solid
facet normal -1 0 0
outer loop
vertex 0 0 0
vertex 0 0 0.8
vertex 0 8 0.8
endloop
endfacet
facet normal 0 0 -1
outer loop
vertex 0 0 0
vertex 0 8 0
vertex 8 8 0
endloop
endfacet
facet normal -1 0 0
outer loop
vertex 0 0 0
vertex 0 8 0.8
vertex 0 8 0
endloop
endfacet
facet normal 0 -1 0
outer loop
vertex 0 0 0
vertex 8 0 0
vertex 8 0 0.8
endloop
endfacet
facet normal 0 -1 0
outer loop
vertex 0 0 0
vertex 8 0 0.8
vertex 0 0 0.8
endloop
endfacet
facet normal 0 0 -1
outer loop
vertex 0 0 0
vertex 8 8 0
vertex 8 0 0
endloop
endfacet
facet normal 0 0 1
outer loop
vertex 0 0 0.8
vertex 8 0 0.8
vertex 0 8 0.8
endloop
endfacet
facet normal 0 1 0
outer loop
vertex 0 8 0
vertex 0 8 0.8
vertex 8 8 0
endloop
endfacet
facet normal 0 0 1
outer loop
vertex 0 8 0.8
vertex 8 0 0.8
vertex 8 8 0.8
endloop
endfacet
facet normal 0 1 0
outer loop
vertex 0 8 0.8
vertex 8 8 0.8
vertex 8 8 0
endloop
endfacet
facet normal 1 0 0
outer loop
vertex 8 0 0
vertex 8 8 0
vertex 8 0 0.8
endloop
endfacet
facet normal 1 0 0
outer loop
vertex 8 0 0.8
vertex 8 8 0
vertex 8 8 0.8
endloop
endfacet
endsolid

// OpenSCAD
/* Warning, this is a very basic generator with a lot of approximation 
input data : [WFBGA, XYX, 8x8x0.8mm, 169, , A, C04-00470A]
generated by com.zoubworld.electronics.cad.model3d.Basic
Date : Sun Feb 15 10:50:48 CET 2026
*/

//body
color("black")
translate([0,0,0])
cube([8.0,8.0,0.8], center=false);
